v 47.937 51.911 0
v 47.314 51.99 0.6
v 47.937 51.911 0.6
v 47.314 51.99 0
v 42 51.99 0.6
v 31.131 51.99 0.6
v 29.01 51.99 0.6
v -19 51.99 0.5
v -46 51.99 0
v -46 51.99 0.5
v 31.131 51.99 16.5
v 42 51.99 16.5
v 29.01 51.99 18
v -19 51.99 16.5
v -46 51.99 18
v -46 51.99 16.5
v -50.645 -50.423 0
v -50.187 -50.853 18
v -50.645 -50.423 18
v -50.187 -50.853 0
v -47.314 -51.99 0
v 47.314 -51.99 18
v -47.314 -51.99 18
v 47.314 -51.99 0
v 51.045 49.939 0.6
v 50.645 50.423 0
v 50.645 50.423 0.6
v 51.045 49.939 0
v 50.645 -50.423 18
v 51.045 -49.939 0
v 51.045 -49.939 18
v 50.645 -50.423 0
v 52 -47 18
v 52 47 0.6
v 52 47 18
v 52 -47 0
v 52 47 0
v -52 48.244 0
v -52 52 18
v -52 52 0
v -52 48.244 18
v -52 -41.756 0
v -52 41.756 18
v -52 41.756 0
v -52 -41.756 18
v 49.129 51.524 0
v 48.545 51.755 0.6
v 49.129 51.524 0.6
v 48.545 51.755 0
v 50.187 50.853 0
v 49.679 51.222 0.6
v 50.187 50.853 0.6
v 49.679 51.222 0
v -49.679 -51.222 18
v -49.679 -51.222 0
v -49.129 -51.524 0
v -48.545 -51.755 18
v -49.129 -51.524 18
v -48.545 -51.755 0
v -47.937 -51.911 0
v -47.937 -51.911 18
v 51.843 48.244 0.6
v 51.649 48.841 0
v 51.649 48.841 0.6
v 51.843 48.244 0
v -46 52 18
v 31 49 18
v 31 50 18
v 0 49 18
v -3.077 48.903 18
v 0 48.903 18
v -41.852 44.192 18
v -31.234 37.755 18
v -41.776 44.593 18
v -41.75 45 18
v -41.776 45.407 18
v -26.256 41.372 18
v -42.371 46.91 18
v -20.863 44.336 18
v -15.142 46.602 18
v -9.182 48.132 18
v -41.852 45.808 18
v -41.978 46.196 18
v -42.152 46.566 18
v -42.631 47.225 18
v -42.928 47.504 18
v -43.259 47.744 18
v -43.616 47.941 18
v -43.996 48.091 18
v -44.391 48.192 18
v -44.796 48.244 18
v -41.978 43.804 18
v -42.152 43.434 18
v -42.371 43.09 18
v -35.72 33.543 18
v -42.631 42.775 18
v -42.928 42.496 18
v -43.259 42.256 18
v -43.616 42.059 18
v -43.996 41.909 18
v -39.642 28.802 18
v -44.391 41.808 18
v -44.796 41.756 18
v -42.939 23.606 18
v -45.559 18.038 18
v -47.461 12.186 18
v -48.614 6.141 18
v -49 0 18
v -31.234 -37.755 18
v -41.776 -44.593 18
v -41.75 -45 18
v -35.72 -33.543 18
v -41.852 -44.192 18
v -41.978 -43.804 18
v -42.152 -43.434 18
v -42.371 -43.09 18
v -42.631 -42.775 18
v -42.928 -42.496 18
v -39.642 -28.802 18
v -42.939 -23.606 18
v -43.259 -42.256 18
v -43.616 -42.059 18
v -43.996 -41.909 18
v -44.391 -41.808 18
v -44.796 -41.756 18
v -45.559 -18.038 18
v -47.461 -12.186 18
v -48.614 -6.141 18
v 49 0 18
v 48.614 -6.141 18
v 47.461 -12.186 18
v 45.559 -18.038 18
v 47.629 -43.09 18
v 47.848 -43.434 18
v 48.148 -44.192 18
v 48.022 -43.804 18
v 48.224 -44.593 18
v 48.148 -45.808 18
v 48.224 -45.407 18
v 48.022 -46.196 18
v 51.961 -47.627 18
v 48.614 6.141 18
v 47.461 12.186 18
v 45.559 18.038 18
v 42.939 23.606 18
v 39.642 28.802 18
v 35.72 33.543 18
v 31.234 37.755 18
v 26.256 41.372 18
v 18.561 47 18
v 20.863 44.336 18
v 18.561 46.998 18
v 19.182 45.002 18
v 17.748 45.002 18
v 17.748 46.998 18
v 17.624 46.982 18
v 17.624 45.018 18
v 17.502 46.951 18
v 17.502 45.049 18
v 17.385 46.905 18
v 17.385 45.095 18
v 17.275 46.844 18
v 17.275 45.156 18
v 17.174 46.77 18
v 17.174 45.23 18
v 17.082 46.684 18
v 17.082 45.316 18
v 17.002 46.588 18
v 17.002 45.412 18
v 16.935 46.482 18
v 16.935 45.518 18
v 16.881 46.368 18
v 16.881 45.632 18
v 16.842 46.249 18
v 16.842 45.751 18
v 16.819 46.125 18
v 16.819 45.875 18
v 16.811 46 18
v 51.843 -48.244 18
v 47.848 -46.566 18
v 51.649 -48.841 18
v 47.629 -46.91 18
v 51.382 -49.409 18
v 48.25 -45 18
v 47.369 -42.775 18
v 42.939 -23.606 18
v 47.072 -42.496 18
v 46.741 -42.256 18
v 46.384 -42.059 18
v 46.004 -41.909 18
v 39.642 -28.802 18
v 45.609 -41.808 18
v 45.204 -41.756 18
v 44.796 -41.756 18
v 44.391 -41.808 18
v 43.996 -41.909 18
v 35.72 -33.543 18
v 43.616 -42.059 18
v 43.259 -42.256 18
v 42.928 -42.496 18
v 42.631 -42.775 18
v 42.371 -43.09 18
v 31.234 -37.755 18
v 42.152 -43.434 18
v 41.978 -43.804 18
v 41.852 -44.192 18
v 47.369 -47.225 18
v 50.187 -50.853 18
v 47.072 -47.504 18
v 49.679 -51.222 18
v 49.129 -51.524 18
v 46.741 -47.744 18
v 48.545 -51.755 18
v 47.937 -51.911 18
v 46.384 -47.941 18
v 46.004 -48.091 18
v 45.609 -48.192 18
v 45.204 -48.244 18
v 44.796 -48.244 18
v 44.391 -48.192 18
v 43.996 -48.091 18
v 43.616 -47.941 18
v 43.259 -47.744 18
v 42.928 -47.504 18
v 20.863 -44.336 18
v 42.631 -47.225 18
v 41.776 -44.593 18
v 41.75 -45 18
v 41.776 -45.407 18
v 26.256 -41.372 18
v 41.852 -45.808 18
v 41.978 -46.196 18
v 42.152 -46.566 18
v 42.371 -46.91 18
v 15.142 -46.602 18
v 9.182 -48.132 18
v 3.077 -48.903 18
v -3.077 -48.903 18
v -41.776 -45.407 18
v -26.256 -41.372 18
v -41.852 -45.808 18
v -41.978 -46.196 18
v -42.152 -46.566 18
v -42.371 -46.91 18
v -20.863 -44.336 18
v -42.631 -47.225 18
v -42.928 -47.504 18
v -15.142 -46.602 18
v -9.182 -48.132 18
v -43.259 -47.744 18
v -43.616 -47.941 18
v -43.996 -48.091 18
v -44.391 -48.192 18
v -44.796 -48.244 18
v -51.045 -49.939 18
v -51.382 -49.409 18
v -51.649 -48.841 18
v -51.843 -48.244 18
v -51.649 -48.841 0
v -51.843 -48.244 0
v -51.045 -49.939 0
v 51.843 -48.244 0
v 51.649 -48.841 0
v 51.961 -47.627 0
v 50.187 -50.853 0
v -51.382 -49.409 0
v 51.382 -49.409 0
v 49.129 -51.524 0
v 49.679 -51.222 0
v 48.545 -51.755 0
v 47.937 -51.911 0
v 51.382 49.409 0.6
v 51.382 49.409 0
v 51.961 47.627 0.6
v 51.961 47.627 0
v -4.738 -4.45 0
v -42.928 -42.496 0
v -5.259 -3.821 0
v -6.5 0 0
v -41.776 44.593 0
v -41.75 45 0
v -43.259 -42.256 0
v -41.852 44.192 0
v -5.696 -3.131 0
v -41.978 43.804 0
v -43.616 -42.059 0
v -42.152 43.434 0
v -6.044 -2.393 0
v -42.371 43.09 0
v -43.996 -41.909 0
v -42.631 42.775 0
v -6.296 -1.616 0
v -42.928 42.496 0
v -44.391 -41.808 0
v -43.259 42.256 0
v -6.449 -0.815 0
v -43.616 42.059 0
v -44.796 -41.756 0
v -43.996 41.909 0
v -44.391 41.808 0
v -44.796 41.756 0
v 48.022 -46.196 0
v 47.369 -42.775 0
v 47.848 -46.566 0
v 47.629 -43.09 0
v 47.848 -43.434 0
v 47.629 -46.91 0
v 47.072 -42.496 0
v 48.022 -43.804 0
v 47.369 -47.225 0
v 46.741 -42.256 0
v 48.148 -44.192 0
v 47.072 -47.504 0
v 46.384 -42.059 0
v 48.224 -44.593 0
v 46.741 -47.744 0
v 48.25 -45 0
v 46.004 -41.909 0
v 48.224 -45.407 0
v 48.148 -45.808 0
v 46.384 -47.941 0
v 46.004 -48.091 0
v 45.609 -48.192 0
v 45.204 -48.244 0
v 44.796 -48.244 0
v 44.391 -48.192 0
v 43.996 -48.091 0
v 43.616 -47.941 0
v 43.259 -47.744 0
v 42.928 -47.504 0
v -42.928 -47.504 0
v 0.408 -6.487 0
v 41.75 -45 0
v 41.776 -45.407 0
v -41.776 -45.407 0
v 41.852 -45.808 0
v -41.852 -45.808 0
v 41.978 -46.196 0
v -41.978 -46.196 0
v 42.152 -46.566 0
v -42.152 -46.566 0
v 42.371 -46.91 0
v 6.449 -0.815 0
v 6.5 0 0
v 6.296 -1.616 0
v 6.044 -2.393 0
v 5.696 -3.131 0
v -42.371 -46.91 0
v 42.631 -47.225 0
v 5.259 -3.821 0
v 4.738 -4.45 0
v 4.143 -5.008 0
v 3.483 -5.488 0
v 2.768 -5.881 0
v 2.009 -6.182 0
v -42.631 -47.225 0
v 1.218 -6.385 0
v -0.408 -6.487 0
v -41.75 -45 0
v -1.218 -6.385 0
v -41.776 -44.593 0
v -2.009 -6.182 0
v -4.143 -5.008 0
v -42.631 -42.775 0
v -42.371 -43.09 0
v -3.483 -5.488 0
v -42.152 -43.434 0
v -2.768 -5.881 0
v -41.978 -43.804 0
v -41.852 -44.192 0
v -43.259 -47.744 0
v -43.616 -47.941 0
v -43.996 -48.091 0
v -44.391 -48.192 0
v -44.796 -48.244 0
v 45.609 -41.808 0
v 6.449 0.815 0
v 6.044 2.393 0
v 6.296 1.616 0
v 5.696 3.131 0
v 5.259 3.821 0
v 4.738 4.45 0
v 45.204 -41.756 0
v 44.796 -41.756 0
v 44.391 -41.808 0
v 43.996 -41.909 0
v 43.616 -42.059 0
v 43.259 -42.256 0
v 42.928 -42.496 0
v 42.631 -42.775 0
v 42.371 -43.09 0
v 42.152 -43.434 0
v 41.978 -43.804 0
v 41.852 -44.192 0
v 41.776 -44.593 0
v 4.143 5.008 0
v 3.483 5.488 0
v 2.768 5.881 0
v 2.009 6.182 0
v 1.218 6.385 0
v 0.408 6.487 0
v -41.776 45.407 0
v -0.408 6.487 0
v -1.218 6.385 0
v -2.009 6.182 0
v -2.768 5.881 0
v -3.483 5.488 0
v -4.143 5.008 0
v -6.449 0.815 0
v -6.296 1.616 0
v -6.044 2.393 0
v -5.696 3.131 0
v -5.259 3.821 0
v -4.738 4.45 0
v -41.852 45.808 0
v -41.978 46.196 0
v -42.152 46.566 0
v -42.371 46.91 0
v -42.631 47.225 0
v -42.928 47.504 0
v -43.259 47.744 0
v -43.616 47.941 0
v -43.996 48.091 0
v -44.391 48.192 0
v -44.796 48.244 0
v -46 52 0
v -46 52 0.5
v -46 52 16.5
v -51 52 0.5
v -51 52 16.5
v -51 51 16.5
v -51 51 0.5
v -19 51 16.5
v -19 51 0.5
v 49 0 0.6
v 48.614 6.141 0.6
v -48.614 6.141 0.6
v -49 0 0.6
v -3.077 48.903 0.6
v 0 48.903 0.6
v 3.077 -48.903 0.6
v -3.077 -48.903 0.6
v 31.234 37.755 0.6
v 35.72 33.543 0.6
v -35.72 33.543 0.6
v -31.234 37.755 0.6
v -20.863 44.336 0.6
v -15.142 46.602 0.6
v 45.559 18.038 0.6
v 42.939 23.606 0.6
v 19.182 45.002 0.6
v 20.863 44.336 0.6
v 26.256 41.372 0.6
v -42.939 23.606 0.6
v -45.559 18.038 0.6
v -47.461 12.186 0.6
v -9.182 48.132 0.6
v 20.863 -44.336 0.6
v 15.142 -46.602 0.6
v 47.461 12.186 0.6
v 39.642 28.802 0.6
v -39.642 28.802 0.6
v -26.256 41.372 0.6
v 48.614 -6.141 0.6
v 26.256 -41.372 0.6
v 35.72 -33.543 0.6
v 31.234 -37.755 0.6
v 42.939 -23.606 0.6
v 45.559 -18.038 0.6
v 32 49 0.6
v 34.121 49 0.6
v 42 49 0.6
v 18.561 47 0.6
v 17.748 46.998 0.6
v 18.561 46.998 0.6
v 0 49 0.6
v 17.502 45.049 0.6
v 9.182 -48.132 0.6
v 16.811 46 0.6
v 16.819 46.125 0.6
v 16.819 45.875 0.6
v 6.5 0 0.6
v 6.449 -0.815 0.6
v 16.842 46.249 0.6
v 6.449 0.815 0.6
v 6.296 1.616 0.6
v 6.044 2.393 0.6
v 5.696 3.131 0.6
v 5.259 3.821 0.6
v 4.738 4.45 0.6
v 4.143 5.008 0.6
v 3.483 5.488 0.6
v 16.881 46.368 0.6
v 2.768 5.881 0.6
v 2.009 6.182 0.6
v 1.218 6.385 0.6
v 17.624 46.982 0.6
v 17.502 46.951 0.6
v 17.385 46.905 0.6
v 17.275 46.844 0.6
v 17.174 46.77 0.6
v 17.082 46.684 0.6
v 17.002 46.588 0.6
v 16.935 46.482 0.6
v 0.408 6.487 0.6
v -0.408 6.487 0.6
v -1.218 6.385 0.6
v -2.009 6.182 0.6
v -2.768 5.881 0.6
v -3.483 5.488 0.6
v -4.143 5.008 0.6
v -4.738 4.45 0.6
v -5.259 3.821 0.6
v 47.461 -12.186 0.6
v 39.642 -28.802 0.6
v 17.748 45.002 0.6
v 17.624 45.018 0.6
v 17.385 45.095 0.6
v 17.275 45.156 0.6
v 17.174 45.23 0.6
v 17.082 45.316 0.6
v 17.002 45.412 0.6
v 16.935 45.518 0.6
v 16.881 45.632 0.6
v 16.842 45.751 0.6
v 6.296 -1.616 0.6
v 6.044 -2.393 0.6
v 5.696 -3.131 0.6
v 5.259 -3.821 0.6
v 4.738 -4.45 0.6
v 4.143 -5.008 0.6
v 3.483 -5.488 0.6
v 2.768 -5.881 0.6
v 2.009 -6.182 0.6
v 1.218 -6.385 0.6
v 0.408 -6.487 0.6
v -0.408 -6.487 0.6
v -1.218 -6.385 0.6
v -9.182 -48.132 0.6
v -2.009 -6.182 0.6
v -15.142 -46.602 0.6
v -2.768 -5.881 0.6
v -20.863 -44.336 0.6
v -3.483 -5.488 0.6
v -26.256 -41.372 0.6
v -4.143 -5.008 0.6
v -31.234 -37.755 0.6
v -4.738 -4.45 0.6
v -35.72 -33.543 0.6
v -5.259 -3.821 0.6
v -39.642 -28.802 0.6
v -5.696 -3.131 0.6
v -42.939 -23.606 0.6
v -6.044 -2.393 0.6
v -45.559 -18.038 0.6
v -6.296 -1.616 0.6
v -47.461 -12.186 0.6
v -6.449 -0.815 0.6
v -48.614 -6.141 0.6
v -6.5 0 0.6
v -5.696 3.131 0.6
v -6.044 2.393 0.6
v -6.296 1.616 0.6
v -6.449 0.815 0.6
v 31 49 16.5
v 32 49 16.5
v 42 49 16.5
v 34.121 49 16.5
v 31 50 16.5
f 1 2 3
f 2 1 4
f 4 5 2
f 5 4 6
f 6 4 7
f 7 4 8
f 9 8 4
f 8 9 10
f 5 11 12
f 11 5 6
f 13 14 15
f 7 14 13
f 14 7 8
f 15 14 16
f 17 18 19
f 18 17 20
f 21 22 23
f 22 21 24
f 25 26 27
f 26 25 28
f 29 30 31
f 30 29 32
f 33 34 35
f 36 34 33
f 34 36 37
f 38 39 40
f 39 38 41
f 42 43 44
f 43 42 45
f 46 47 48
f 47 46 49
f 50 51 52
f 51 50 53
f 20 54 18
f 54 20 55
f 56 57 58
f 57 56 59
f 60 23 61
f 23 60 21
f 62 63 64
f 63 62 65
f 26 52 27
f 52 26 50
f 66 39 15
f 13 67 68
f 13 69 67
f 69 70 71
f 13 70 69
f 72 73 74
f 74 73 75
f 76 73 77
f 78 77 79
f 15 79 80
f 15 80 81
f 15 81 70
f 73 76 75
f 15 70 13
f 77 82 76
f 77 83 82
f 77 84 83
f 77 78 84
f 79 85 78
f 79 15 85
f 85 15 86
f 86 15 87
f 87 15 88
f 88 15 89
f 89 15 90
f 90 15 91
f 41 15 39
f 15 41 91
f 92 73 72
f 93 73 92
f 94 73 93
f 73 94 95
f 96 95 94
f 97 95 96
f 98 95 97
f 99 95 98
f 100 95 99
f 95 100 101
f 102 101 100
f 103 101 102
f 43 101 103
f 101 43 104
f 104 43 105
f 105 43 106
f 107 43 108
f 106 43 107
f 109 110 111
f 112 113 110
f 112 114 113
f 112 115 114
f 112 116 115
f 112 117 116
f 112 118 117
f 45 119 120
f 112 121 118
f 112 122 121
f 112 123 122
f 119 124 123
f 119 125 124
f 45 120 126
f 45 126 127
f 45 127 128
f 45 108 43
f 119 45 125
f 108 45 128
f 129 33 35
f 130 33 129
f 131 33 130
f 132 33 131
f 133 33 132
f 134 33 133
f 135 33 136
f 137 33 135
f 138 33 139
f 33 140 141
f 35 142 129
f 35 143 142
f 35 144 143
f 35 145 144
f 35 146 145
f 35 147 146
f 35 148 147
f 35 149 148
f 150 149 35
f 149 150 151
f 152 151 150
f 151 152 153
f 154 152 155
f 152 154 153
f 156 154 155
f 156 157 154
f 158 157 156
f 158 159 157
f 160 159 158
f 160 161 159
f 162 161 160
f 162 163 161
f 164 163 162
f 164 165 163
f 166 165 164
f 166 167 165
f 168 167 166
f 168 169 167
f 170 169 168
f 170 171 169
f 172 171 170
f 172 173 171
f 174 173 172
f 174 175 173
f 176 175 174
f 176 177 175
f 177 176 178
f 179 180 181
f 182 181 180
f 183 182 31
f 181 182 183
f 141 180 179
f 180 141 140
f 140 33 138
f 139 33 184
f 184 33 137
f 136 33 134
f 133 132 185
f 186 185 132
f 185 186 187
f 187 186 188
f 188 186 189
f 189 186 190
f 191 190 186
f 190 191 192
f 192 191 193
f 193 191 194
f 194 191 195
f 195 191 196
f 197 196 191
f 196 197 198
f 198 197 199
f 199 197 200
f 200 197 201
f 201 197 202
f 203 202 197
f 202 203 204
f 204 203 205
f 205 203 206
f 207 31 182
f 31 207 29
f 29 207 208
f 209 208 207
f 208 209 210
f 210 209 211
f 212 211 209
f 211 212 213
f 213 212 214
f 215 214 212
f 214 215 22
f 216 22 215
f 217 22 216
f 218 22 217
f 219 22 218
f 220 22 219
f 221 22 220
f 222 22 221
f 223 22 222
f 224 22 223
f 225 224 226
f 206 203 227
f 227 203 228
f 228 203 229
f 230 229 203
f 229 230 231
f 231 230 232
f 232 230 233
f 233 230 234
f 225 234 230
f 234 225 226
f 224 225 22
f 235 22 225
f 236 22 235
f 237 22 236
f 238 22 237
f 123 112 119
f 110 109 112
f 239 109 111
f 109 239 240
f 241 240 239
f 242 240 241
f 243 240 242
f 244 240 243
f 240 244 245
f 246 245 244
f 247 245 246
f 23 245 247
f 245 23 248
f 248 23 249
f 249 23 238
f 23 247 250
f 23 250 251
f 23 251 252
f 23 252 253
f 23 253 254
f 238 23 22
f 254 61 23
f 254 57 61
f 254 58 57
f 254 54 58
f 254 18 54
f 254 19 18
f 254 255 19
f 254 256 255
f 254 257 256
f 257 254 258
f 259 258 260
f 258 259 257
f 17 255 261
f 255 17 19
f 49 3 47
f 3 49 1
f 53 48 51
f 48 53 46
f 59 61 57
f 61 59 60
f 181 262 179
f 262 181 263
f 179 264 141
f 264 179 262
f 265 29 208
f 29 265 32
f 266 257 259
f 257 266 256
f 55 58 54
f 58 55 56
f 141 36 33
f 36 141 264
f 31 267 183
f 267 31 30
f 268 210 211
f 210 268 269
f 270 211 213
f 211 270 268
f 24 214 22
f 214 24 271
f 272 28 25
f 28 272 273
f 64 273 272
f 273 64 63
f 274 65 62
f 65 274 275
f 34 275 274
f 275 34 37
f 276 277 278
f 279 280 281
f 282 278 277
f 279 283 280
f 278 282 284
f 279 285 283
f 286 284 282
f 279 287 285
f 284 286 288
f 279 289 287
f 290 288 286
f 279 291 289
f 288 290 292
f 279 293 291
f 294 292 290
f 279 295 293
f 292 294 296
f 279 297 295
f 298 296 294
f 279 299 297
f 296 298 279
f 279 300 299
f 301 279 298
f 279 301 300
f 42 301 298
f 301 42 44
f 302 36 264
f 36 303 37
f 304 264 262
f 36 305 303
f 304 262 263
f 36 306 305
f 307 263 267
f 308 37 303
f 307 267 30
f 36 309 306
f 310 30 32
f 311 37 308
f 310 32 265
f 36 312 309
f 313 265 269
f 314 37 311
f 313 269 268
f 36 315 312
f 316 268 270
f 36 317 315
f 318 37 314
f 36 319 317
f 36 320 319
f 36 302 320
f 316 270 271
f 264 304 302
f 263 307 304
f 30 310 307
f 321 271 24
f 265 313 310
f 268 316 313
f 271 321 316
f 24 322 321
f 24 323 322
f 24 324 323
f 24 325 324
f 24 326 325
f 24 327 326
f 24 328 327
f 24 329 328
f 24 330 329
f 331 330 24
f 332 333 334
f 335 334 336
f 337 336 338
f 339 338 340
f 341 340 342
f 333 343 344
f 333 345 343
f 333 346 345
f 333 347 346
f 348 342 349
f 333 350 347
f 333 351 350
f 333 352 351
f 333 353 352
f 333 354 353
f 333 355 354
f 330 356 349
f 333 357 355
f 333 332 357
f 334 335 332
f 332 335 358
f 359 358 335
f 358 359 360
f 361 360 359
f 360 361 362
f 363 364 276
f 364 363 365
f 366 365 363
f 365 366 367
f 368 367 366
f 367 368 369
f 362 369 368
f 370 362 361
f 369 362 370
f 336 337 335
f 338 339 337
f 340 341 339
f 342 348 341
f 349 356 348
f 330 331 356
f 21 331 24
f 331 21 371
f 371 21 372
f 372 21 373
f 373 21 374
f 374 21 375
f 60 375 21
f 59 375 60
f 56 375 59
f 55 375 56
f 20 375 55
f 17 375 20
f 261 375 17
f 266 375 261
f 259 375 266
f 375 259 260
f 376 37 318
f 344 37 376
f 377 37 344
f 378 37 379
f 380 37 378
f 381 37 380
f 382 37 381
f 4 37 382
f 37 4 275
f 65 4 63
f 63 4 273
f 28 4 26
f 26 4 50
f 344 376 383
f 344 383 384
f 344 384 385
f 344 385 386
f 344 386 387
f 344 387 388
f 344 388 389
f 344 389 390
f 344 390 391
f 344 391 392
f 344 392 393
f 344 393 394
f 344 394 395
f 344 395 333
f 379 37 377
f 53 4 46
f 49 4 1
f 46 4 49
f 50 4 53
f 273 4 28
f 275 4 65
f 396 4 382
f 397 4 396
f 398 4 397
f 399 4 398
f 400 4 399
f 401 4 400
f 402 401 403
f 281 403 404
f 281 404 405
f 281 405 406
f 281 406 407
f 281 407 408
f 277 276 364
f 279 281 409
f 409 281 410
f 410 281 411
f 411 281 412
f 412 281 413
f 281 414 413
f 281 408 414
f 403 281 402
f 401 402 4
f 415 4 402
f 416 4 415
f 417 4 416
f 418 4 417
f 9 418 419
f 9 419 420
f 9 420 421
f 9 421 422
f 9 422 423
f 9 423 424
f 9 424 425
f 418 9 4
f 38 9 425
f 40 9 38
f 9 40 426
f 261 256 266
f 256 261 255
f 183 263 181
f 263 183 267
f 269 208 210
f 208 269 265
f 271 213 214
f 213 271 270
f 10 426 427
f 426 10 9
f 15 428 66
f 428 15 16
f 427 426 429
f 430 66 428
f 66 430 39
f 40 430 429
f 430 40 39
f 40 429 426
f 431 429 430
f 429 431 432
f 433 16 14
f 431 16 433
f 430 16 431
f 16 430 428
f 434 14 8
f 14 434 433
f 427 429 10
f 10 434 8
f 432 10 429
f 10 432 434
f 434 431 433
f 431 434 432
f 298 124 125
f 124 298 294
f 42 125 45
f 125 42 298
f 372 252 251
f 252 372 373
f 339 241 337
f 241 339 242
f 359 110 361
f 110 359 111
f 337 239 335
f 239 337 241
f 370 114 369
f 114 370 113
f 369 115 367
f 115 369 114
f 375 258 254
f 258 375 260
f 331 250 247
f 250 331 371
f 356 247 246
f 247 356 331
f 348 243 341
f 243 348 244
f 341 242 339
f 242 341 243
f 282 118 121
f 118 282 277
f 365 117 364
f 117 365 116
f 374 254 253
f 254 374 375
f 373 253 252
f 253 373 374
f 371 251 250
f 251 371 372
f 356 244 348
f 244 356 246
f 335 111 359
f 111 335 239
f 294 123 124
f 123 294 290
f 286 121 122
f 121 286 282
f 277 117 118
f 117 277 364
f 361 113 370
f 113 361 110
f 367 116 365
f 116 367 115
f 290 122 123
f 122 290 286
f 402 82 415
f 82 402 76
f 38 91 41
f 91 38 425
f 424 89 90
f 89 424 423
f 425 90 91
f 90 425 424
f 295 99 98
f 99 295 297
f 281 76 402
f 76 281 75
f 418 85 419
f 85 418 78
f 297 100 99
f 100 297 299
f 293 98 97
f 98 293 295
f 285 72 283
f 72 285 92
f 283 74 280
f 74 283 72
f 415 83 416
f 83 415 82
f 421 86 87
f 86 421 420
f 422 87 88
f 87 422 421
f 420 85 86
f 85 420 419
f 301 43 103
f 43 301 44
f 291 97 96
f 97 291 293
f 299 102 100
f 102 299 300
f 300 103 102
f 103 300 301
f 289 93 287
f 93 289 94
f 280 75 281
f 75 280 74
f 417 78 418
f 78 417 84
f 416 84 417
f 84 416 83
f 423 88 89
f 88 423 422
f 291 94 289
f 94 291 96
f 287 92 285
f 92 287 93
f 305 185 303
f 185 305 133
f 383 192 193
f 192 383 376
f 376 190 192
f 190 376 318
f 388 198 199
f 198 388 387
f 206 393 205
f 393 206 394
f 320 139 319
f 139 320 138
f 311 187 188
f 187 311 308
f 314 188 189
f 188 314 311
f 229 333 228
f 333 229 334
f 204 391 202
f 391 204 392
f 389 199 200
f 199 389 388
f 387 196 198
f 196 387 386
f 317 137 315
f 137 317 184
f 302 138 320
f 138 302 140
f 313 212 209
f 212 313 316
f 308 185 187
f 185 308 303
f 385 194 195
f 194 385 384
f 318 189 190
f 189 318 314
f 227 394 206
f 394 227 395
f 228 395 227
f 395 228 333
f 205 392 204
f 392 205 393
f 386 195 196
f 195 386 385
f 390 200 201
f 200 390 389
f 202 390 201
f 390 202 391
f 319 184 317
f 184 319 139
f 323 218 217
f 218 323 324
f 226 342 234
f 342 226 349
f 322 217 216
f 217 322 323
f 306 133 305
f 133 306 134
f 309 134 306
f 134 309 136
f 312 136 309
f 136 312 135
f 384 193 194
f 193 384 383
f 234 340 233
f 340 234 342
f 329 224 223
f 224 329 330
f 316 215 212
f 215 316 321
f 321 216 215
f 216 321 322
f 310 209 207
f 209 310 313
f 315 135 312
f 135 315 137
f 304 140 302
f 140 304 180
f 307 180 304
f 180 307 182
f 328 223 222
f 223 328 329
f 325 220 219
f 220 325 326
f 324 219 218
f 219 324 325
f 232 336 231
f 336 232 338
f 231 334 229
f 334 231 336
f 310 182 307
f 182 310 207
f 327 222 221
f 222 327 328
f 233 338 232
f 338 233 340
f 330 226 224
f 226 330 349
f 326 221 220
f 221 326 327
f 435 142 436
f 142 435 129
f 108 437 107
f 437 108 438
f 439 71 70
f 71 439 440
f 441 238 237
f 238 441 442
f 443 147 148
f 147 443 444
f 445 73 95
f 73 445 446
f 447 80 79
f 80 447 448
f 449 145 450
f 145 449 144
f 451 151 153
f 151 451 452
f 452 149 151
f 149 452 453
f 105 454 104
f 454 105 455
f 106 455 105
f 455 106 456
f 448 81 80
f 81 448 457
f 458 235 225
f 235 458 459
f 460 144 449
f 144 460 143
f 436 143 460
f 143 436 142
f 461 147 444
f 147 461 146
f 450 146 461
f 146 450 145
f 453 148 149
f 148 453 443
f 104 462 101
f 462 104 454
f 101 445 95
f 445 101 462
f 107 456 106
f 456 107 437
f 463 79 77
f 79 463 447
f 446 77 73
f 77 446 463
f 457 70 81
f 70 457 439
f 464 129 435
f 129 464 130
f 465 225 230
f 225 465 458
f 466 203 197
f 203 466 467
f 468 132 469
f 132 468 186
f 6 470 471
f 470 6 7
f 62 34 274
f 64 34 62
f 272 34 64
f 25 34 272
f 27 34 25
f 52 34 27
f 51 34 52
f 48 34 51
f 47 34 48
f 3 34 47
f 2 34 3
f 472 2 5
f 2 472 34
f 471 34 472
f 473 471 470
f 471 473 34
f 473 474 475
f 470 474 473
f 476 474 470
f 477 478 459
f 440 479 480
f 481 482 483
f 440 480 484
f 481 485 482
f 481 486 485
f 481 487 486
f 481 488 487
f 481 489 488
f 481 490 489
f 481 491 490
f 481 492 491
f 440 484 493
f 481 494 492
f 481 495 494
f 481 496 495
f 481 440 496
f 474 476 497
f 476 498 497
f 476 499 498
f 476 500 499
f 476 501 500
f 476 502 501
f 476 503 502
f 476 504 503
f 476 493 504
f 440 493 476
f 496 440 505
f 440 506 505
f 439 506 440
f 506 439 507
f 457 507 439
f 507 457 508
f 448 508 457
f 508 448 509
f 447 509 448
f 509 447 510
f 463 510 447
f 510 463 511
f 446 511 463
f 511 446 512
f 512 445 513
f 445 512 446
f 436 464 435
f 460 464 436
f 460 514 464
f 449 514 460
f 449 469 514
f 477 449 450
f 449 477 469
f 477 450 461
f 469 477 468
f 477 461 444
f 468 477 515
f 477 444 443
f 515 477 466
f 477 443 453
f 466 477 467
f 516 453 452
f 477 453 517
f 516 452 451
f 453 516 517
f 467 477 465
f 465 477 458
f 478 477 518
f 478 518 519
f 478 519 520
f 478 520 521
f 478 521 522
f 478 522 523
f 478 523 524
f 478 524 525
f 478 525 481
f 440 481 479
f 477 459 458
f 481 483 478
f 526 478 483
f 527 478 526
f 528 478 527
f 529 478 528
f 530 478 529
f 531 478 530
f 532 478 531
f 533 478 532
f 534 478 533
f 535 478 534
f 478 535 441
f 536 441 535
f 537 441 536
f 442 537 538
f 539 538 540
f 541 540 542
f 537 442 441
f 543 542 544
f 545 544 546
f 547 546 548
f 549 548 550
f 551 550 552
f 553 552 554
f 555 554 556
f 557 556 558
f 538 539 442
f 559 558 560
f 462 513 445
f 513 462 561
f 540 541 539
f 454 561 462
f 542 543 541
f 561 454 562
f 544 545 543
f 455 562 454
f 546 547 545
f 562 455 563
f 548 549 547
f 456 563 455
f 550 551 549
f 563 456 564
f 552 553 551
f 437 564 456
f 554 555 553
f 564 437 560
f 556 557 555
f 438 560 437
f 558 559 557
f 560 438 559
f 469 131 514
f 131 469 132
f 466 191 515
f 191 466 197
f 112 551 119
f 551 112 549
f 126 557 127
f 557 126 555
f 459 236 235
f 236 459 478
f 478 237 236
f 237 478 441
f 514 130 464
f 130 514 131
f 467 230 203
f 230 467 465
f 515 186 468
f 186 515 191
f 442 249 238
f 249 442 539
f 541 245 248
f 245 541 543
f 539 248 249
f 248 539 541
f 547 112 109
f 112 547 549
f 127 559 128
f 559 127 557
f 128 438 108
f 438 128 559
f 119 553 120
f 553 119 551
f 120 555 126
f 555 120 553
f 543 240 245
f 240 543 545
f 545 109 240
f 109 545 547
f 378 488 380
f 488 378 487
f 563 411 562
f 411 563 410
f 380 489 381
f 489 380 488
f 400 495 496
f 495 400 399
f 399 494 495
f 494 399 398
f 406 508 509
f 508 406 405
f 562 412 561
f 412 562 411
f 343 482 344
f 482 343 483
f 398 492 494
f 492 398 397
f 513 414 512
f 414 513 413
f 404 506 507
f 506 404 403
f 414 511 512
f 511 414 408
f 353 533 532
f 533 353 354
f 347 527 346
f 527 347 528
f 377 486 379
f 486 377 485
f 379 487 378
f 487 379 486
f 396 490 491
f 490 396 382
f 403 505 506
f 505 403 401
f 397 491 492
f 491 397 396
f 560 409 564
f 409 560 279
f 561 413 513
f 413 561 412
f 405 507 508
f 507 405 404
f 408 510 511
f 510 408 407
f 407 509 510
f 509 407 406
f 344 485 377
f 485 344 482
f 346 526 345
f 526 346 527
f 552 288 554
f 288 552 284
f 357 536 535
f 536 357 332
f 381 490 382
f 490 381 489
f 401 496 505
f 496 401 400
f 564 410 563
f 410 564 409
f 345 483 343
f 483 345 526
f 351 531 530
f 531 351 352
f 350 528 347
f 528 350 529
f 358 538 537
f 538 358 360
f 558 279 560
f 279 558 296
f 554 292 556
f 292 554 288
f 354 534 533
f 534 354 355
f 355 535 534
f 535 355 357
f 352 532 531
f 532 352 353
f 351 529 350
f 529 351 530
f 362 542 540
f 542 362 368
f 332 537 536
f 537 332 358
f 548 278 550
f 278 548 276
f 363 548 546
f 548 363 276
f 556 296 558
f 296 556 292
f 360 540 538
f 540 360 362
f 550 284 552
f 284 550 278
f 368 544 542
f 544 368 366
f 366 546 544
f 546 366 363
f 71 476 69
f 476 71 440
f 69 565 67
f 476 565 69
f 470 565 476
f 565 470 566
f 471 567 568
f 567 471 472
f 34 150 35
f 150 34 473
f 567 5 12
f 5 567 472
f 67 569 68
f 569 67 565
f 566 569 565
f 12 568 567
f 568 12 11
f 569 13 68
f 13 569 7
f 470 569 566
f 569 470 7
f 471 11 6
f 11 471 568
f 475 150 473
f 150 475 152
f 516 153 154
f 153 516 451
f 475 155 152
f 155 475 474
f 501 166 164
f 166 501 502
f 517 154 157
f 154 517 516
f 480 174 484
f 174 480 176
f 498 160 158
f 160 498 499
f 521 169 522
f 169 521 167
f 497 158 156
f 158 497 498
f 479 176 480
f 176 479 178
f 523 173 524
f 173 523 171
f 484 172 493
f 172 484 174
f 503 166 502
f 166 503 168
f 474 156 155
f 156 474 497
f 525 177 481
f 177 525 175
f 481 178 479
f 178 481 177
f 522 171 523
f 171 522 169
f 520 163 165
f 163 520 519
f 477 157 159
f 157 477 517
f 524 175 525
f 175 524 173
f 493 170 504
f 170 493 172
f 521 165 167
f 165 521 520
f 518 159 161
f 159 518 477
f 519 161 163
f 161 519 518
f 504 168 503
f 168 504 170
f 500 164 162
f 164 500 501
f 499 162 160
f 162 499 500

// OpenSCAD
$fn = 50;


union() {
	difference() {
		union() {
			translate(v = [0, 0, 0]) {
				rotate(a = [0, 0, 0]) {
					hull() {
						translate(v = [-47.0000000000, 47.0000000000, 0]) {
							rotate(a = [0, 0, 0]) {
								translate(v = [0, 0, 0]) {
									rotate(a = [0, 0, 0]) {
										cylinder(h = 18, r = 5);
									}
								}
							}
						}
						translate(v = [47.0000000000, 47.0000000000, 0]) {
							rotate(a = [0, 0, 0]) {
								translate(v = [0, 0, 0]) {
									rotate(a = [0, 0, 0]) {
										cylinder(h = 18, r = 5);
									}
								}
							}
						}
						translate(v = [-47.0000000000, -47.0000000000, 0]) {
							rotate(a = [0, 0, 0]) {
								translate(v = [0, 0, 0]) {
									rotate(a = [0, 0, 0]) {
										cylinder(h = 18, r = 5);
									}
								}
							}
						}
						translate(v = [47.0000000000, -47.0000000000, 0]) {
							rotate(a = [0, 0, 0]) {
								translate(v = [0, 0, 0]) {
									rotate(a = [0, 0, 0]) {
										cylinder(h = 18, r = 5);
									}
								}
							}
						}
					}
				}
			}
			translate(v = [-52.0000000000, 46.0000000000, 0]) {
				rotate(a = [0, 0, 0]) {
					cube(size = [6, 6, 18]);
				}
			}
		}
		union() {
			#translate(v = [-51.0000000000, 51.0000000000, 0.5000000000]) {
				rotate(a = [0, 0, 0]) {
					cube(size = [32, 1, 16]);
				}
			}
			translate(v = [-52.5000000000, -45.0000000000, -125]) {
				rotate(a = [0, 0, 0]) {
					hull() {
						translate(v = [7.5000000000, 0, 0]) {
							rotate(a = [0, 0, 0]) {
								translate(v = [0, 0, 0]) {
									rotate(a = [0, 0, 0]) {
										cylinder(h = 250, r = 3.2500000000);
									}
								}
							}
						}
						translate(v = [-7.5000000000, 0, 0]) {
							rotate(a = [0, 0, 0]) {
								translate(v = [0, 0, 0]) {
									rotate(a = [0, 0, 0]) {
										cylinder(h = 250, r = 3.2500000000);
									}
								}
							}
						}
					}
				}
			}
			translate(v = [-52.5000000000, 45.0000000000, -125]) {
				rotate(a = [0, 0, 0]) {
					hull() {
						translate(v = [7.5000000000, 0, 0]) {
							rotate(a = [0, 0, 0]) {
								translate(v = [0, 0, 0]) {
									rotate(a = [0, 0, 0]) {
										cylinder(h = 250, r = 3.2500000000);
									}
								}
							}
						}
						translate(v = [-7.5000000000, 0, 0]) {
							rotate(a = [0, 0, 0]) {
								translate(v = [0, 0, 0]) {
									rotate(a = [0, 0, 0]) {
										cylinder(h = 250, r = 3.2500000000);
									}
								}
							}
						}
					}
				}
			}
			translate(v = [45.0000000000, -45.0000000000, -125.0000000000]) {
				rotate(a = [0, 0, 0]) {
					cylinder(h = 250, r = 3.2500000000);
				}
			}
			translate(v = [0, 0, 0.6000000000]) {
				rotate(a = [0, 0, 0]) {
					cylinder(h = 20.4000000000, r = 49.0000000000);
				}
			}
			translate(v = [0, 0, -9.0000000000]) {
				rotate(a = [0, 0, 0]) {
					cylinder(h = 18, r = 6.5000000000);
				}
			}
			translate(v = [0.0000000000, 47.0000000000, 0.6000000000]) {
				rotate(a = [0, 0, 0]) {
					cube(size = [52.0000000000, 2, 20.4000000000]);
				}
			}
			translate(v = [42.0000000000, 47.0000000000, 0.6000000000]) {
				rotate(a = [0, 0, 0]) {
					cube(size = [10, 5, 20.4000000000]);
				}
			}
			translate(v = [31.0000000000, 47.0000000000, 16.5000000000]) {
				rotate(a = [0, 0, 0]) {
					cube(size = [21, 5, 1.5000000000]);
				}
			}
			translate(v = [28.2500000000, 52.7500000000, 0.6000000000]) {
				rotate(a = [0, 0, -45]) {
					cube(size = [7.5000000000, 1.5000000000, 20.4000000000]);
				}
			}
			translate(v = [11.0610000000, 45.0000000000, 0.6000000000]) {
				rotate(a = [0, 0, 0]) {
					cube(size = [7.5000000000, 2, 17.4000000000]);
				}
			}
		}
	}
	union() {
		translate(v = [20.3110000000, 46.0000000000, 0]) {
			rotate(a = [0, 0, 0]) {
				hull() {
					translate(v = [2.5000000000, 0, 0]) {
						rotate(a = [0, 0, 0]) {
							#translate(v = [0, 0, 0]) {
								rotate(a = [0, 0, 0]) {
									cylinder(h = 18, r = 1.0000000000);
								}
							}
						}
					}
					translate(v = [-2.5000000000, 0, 0]) {
						rotate(a = [0, 0, 0]) {
							#translate(v = [0, 0, 0]) {
								rotate(a = [0, 0, 0]) {
									cylinder(h = 18, r = 1.0000000000);
								}
							}
						}
					}
				}
			}
		}
	}
}
